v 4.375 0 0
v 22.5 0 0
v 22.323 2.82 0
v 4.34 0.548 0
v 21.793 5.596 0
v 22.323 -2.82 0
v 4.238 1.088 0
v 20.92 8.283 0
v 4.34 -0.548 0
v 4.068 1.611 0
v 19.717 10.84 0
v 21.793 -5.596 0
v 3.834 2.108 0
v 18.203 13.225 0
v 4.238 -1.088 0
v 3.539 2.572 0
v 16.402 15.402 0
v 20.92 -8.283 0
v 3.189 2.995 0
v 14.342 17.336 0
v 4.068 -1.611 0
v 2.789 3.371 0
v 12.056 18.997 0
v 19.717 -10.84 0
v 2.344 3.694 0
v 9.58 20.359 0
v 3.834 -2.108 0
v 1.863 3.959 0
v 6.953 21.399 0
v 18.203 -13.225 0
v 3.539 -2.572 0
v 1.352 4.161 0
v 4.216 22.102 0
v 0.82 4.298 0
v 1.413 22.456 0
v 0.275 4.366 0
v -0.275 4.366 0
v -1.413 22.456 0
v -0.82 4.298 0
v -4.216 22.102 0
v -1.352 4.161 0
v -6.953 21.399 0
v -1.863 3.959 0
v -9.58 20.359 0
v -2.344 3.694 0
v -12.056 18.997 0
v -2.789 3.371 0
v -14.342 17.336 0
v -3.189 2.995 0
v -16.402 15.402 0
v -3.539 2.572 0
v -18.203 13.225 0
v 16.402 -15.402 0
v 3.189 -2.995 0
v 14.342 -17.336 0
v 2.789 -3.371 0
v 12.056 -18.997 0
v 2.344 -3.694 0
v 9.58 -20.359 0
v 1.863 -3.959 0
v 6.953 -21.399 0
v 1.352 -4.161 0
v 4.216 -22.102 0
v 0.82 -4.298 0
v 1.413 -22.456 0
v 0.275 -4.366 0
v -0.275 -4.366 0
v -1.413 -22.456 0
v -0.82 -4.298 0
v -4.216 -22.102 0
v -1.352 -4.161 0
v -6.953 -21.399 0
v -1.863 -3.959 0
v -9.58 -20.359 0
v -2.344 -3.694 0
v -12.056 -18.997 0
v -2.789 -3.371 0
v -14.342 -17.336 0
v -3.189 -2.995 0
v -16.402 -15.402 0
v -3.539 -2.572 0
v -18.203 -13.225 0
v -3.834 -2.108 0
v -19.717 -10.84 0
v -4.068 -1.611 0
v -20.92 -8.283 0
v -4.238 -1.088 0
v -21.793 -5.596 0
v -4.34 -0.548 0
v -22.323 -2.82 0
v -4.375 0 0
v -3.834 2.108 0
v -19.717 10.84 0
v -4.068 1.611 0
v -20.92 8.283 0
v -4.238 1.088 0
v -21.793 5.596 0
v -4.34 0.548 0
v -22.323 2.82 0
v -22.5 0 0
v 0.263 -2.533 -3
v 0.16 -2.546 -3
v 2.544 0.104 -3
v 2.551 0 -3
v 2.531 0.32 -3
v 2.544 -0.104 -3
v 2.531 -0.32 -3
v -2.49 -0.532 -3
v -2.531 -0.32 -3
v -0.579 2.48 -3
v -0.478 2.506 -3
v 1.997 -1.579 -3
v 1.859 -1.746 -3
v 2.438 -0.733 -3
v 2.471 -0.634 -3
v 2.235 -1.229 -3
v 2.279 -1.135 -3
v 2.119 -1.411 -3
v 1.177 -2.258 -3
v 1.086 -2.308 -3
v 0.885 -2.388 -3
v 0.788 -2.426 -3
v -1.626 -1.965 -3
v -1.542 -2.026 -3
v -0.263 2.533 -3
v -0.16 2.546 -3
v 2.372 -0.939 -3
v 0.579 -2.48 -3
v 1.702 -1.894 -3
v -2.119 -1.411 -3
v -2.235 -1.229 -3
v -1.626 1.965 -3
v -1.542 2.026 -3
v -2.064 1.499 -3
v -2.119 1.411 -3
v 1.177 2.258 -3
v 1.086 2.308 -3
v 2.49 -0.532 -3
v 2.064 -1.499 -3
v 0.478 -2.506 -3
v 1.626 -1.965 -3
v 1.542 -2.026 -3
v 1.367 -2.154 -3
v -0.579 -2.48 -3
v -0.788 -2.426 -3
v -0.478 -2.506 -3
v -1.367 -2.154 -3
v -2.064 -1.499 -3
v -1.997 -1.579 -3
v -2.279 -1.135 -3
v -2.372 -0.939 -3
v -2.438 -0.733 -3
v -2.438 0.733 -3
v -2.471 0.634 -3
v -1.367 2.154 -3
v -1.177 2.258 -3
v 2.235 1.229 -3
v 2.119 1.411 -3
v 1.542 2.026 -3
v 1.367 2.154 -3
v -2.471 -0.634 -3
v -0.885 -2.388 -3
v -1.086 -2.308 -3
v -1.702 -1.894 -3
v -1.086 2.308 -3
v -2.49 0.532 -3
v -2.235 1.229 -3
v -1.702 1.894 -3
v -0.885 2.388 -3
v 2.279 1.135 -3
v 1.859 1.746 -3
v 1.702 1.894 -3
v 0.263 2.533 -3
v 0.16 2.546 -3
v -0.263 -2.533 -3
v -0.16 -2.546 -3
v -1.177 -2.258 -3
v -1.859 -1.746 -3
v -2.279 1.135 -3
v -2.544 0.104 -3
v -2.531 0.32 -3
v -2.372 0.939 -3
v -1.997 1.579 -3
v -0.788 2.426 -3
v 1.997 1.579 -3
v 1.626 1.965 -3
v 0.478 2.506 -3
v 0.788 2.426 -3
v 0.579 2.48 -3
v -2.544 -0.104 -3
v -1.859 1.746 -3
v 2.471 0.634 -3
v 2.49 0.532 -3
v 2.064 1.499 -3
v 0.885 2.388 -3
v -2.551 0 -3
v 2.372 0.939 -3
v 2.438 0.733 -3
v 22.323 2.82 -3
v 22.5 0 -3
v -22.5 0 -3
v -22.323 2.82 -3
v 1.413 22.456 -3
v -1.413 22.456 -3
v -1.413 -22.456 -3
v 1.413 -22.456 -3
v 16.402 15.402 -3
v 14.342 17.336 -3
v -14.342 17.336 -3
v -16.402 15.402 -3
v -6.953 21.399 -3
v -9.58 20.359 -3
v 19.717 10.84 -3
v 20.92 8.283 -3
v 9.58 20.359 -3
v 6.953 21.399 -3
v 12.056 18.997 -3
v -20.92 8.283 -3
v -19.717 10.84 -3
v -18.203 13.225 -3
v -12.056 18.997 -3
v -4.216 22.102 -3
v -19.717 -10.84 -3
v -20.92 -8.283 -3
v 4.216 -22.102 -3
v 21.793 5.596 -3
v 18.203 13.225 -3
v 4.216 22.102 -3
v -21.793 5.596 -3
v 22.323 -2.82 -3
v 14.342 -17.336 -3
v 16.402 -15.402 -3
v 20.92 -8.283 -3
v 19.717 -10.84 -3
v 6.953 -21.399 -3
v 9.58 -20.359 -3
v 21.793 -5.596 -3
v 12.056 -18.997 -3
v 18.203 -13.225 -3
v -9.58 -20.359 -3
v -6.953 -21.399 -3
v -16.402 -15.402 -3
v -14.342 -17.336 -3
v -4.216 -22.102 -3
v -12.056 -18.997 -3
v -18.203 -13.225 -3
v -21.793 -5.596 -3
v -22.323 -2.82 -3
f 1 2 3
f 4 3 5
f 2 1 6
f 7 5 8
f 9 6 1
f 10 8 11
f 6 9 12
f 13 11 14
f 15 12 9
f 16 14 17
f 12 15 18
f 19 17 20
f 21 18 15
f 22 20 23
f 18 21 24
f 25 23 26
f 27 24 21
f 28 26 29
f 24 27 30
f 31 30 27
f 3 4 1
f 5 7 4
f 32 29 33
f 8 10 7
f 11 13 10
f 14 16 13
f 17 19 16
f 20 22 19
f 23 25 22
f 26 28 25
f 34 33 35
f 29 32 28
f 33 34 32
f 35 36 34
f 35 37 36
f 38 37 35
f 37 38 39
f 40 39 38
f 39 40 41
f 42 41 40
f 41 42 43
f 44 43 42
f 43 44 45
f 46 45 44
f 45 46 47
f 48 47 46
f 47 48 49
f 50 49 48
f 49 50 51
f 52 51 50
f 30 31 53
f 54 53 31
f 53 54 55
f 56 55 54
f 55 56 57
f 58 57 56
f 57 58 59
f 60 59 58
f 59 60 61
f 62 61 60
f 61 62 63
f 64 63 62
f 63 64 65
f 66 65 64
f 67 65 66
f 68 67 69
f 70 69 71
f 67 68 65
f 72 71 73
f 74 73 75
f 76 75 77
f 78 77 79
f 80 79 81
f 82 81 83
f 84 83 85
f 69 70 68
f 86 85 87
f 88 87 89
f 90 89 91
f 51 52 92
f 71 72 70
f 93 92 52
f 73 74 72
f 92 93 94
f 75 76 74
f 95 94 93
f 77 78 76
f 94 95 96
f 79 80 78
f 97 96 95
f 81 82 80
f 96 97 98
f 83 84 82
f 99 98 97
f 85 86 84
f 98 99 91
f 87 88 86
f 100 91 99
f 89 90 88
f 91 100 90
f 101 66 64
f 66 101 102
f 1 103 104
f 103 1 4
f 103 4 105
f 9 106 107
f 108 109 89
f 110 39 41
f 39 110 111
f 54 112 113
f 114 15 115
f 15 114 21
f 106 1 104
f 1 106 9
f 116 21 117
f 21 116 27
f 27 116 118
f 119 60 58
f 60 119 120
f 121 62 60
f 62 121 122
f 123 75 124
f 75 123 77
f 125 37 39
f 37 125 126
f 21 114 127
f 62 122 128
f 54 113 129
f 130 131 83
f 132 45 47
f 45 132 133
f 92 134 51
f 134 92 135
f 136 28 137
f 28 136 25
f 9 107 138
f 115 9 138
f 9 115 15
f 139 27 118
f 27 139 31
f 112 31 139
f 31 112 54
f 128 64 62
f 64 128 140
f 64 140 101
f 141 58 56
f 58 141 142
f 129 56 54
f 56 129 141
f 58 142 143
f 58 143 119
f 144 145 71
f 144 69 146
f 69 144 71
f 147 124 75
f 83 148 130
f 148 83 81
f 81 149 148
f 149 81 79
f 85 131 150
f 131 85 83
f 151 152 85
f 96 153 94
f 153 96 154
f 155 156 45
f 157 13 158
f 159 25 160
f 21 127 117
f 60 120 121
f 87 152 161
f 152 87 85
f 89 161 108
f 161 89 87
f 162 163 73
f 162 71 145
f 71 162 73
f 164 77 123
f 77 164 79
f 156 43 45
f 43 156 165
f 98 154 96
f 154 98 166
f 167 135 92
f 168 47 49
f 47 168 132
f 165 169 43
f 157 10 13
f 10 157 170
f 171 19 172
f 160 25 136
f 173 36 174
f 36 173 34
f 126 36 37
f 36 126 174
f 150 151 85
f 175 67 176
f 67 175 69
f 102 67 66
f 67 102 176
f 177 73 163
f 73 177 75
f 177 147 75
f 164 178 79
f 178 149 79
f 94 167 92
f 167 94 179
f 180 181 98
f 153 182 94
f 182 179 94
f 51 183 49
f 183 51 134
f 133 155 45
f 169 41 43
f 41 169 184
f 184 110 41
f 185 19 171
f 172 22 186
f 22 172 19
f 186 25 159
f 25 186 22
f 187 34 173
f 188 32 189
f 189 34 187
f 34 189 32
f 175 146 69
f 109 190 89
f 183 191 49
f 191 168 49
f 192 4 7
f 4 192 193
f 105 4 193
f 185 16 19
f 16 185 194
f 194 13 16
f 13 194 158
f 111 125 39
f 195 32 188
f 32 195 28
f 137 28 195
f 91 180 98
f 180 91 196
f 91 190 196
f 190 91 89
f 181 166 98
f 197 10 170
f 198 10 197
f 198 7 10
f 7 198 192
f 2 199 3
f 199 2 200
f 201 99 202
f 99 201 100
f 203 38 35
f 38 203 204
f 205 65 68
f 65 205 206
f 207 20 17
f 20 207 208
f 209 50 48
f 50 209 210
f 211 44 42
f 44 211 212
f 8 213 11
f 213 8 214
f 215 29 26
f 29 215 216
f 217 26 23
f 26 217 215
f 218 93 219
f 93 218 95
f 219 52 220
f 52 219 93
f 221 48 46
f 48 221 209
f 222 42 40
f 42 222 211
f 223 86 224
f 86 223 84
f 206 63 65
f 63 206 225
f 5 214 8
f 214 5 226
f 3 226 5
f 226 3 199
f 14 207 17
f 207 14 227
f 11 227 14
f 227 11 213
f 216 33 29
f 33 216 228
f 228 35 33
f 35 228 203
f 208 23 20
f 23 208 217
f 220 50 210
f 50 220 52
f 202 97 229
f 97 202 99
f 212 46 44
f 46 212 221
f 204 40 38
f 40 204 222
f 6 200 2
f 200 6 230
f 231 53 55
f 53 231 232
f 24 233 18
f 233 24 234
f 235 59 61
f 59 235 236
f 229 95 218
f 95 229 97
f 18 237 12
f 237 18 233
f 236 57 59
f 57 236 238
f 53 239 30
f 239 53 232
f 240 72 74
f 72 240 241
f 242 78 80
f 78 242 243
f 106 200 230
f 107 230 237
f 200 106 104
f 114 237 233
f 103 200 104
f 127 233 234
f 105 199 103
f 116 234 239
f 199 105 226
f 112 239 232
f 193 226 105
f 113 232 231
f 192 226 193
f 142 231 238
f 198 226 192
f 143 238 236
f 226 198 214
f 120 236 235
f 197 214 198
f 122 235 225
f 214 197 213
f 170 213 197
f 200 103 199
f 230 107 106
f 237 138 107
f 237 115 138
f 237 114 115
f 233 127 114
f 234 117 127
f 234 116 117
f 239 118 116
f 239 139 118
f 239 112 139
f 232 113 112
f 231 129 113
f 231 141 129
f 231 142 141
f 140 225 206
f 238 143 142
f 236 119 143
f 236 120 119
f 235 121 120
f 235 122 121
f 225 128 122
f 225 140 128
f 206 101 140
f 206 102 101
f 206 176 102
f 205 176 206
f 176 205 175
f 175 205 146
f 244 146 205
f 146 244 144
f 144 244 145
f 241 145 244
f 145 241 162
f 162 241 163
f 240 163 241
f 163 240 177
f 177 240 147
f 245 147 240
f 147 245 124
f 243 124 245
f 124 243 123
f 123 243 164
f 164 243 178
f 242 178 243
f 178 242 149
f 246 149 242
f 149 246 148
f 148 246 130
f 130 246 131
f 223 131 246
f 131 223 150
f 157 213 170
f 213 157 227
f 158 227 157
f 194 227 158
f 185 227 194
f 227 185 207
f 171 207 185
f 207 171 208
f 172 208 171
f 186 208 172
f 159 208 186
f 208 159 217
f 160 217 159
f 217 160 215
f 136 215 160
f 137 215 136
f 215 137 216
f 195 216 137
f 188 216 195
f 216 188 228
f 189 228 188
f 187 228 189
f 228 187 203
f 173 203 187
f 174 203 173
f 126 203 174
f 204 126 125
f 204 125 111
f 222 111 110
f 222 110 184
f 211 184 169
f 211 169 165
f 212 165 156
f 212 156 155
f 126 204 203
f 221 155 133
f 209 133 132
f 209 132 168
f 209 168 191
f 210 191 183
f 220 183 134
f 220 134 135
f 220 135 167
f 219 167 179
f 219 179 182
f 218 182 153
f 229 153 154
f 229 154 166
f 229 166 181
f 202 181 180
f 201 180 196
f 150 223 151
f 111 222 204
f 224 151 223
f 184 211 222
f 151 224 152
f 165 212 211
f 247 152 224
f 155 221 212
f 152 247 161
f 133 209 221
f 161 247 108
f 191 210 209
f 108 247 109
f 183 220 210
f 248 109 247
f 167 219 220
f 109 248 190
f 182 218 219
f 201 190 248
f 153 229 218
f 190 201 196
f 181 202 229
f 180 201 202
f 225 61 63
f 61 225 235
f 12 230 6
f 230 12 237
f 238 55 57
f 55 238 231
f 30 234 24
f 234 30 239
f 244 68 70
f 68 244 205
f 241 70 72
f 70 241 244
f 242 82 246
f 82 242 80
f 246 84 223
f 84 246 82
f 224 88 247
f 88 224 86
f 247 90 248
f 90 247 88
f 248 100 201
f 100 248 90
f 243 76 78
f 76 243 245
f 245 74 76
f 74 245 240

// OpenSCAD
$fn = 50;


difference() {
	union() {
		translate(v = [0, 0, -3.0000000000]) {
			cylinder(h = 3, r = 22.5000000000);
		}
	}
	union() {
		translate(v = [0, 0, 0]) {
			rotate(a = [0, 0, 0]) {
				difference() {
					union() {
						translate(v = [0, 0, -3.0000000000]) {
							cylinder(h = 3, r = 2.0000000000);
						}
						translate(v = [0, 0, -3.7000000000]) {
							cylinder(h = 3.7000000000, r1 = 2.1250000000, r2 = 4.3750000000);
						}
						translate(v = [0, 0, -3.0000000000]) {
							cylinder(h = 3, r = 2.1250000000);
						}
						translate(v = [0, 0, -3.0000000000]) {
							cylinder(h = 3, r = 2.0000000000);
						}
					}
					union();
				}
			}
		}
	}
}
